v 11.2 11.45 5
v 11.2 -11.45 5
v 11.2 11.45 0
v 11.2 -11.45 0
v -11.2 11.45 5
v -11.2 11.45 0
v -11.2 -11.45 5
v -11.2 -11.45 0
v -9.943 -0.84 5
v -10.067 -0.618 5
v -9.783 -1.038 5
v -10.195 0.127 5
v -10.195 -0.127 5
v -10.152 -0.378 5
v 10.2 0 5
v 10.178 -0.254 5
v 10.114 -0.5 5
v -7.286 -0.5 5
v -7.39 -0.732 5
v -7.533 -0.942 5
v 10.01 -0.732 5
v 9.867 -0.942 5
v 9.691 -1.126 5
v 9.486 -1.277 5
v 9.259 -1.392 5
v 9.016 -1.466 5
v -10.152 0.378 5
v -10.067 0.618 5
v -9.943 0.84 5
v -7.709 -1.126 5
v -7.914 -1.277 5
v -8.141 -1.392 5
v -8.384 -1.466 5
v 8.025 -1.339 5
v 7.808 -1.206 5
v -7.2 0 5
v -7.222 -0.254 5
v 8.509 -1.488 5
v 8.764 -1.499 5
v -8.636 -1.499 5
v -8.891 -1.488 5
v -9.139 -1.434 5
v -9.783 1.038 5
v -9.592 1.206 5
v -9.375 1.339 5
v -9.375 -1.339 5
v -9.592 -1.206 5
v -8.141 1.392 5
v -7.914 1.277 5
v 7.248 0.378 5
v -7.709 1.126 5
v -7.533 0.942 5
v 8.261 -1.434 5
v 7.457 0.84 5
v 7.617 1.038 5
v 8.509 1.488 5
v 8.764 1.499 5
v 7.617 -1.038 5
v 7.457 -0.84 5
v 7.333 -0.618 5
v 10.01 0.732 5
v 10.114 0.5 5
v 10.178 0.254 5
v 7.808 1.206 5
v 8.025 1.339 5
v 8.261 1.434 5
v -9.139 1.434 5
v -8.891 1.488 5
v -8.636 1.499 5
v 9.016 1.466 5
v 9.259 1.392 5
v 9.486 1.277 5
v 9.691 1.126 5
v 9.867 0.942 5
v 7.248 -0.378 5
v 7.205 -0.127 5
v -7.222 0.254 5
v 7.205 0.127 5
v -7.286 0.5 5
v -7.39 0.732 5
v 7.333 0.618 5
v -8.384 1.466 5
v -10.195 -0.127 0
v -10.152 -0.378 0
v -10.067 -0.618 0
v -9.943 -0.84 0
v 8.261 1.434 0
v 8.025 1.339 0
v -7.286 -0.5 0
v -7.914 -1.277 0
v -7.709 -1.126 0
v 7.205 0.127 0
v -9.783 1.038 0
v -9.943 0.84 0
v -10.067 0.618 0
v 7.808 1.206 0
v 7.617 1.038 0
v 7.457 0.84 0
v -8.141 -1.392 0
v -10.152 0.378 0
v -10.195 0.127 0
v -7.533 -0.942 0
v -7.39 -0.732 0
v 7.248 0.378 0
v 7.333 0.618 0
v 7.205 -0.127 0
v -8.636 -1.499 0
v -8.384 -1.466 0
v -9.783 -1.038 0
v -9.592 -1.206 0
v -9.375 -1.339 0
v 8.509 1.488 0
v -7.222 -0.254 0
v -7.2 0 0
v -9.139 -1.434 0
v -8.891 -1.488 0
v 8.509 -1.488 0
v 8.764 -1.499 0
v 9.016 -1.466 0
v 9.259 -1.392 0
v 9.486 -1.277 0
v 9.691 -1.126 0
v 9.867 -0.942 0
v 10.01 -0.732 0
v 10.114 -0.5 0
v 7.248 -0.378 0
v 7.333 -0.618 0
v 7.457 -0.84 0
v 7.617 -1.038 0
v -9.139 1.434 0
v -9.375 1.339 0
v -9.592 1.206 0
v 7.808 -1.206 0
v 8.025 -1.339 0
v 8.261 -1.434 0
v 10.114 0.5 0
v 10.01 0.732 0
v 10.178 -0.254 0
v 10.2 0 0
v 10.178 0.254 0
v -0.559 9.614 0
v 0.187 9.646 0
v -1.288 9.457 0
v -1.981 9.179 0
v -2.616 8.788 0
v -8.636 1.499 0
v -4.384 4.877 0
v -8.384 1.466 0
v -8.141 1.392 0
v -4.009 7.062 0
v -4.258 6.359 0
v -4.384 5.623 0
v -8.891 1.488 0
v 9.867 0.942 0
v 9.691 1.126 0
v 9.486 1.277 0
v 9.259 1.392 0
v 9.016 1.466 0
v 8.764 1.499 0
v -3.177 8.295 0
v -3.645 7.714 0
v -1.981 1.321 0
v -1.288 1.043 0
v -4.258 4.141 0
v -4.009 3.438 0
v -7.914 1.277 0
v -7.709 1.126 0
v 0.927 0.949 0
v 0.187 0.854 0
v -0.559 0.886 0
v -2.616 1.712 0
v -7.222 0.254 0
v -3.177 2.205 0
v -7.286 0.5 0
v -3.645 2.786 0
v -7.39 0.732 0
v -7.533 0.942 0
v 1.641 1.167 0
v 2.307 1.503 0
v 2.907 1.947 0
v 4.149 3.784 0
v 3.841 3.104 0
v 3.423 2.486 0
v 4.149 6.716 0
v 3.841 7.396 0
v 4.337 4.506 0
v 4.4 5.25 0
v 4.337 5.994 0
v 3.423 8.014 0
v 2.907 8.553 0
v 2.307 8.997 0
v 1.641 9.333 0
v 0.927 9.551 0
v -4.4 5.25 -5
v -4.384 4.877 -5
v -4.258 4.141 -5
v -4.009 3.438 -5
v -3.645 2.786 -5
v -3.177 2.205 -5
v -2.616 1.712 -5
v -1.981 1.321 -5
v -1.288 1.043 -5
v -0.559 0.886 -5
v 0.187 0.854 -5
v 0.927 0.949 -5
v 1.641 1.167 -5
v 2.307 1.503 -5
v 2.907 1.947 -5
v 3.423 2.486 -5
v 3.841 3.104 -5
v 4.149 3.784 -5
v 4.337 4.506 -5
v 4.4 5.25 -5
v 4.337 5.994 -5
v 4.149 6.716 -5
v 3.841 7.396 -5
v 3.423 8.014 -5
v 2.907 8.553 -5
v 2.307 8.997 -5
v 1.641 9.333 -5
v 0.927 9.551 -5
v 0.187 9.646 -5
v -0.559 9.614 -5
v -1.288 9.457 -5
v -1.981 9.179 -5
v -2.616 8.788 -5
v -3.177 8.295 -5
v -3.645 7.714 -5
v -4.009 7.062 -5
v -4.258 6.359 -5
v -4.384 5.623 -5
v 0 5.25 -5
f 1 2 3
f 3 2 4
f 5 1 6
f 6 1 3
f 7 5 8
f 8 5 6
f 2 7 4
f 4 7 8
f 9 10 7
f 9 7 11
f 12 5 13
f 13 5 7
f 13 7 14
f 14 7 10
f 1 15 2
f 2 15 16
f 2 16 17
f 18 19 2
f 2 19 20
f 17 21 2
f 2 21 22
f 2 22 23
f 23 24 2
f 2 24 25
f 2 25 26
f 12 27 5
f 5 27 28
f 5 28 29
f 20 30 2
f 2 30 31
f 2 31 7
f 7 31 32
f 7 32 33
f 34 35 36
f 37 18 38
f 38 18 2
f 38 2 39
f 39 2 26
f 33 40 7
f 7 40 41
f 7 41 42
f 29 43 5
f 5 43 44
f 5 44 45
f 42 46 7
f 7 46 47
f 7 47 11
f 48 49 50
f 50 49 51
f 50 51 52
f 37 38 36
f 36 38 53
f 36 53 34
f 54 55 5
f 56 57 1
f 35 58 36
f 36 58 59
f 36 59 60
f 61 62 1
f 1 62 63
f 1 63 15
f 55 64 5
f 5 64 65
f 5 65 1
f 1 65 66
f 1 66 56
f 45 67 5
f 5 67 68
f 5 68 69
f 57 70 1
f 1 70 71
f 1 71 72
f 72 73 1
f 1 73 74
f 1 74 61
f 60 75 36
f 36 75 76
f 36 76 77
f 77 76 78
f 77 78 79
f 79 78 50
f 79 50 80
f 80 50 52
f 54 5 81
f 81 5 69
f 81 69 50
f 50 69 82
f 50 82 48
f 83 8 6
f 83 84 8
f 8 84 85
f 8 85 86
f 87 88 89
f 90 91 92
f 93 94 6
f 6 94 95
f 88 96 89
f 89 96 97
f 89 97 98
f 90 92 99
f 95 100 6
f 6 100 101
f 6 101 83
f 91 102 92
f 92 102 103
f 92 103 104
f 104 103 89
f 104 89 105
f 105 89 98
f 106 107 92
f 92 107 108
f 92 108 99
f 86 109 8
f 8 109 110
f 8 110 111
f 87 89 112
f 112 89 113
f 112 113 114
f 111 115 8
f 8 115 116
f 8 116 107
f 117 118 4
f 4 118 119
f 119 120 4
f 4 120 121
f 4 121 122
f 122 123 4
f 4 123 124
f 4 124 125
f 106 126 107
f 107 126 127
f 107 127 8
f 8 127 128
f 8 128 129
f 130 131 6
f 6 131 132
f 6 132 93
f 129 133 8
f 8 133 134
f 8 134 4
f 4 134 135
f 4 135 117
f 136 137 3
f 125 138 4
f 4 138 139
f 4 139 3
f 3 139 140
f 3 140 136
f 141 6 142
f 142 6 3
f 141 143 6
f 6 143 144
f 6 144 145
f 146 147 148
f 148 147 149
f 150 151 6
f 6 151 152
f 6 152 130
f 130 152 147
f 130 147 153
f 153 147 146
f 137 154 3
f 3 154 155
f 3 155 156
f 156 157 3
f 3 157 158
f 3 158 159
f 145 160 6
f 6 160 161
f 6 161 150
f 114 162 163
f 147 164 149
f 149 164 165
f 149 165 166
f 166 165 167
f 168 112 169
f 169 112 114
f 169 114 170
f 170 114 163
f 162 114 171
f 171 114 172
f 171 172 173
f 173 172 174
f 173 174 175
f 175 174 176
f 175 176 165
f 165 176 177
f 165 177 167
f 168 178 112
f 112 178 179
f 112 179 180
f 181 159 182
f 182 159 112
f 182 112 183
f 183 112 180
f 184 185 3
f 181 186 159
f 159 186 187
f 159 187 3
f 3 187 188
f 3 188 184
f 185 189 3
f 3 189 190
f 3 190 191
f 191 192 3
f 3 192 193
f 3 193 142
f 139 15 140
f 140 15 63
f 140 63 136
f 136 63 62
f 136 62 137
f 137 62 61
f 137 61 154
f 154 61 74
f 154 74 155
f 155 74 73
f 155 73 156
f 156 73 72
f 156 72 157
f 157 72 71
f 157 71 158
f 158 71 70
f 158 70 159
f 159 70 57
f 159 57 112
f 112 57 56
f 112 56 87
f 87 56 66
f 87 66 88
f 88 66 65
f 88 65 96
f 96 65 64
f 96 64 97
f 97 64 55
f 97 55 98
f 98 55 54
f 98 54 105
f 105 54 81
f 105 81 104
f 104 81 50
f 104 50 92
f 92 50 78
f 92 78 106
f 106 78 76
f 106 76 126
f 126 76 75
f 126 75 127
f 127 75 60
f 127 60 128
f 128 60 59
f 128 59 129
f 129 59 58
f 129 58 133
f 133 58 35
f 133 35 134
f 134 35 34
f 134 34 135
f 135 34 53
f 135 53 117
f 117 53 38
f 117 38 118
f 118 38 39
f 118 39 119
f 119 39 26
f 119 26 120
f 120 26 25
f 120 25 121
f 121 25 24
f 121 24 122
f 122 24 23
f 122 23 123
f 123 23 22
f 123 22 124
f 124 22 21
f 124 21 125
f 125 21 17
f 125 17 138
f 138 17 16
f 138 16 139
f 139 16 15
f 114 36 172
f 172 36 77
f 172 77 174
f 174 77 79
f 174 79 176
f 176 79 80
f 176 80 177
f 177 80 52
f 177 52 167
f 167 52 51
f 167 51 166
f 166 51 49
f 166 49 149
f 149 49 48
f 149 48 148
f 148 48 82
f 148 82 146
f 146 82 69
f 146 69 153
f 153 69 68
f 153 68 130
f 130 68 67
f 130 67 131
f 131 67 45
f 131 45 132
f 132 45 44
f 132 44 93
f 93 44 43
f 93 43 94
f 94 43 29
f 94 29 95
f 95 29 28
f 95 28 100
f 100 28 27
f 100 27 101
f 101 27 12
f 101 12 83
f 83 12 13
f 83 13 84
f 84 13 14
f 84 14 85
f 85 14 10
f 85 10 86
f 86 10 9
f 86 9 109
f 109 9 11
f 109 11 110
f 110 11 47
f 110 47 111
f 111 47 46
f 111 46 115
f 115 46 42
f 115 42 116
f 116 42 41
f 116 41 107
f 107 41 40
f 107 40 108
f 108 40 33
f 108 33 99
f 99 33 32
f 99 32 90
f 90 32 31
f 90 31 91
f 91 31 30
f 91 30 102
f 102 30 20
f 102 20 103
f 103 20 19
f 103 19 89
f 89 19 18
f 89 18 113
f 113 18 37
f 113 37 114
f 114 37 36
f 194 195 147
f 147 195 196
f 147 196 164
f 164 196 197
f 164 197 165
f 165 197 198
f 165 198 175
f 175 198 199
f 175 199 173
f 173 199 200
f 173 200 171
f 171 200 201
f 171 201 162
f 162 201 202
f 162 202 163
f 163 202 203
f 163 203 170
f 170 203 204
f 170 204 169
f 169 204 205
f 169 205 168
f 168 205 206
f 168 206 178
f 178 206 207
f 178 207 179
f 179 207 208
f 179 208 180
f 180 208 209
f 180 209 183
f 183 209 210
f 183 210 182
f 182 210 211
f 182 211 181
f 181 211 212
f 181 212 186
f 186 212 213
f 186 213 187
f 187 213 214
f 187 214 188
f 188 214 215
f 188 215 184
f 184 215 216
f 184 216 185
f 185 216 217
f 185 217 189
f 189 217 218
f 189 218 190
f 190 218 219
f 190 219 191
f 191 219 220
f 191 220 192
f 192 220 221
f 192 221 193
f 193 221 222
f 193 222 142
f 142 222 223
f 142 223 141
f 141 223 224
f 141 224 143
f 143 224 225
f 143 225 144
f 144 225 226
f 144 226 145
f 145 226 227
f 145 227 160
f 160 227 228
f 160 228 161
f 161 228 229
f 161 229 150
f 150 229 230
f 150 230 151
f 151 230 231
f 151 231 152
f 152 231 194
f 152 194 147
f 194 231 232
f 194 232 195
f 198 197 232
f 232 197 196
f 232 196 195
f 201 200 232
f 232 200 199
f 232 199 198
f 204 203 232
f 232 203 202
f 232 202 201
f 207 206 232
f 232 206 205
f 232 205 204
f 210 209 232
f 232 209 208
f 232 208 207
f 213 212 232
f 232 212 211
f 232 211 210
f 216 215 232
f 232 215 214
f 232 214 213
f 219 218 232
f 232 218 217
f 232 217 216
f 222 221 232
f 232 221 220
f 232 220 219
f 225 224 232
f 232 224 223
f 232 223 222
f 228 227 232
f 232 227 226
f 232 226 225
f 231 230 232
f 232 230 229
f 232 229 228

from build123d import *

# Parameters (mm, degrees)
SKETCH1_W           = 22.4
SKETCH1_H           = 22.9
BOSS_EXTRUDE1_DEPTH = 5
SKETCH2_R           = 1.5
CUT_EXTRUDE1_DEPTH  = 5
SKETCH4_R           = 4.4
BOSS_EXTRUDE3_DEPTH = 5


with BuildPart() as part:
    # Sketch1 → Boss-Extrude1 (new body)
    with BuildSketch(Plane.XY):
        Rectangle(SKETCH1_W, SKETCH1_H)
    extrude(amount=BOSS_EXTRUDE1_DEPTH)

    # Sketch2 → Cut-Extrude1 (cut)
    with BuildSketch(Plane.XY.offset(5)):
        with Locations((-8.7, 0)):
            Circle(SKETCH2_R)
        with Locations((8.7, 0)):
            Circle(SKETCH2_R)
    extrude(amount=-CUT_EXTRUDE1_DEPTH, mode=Mode.SUBTRACT)

    # Sketch4 → Boss-Extrude3 (add)
    with BuildSketch(Plane(origin=(0, 0, 0), x_dir=(-1, 0, 0), z_dir=(0, 0, -1))):
        with Locations((0, 5.25)):
            Circle(SKETCH4_R)
    extrude(amount=BOSS_EXTRUDE3_DEPTH)


solid = part.part
